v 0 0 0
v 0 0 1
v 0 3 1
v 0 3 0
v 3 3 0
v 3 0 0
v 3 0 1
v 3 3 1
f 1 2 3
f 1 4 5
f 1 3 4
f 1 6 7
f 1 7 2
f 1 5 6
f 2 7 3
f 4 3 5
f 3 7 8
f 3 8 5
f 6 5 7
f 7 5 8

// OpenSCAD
/* Warning, this is a very basic generator with a lot of approximation 
input data : [DFN, EJX, 3x3mm, 10, , C, C04-00063C]
generated by com.zoubworld.electronics.cad.model3d.Basic
Date : Sun Feb 15 10:50:48 CET 2026
*/

//body
color("black")
translate([0,0,0])
cube([3.0,3.0,1.0], center=false);
